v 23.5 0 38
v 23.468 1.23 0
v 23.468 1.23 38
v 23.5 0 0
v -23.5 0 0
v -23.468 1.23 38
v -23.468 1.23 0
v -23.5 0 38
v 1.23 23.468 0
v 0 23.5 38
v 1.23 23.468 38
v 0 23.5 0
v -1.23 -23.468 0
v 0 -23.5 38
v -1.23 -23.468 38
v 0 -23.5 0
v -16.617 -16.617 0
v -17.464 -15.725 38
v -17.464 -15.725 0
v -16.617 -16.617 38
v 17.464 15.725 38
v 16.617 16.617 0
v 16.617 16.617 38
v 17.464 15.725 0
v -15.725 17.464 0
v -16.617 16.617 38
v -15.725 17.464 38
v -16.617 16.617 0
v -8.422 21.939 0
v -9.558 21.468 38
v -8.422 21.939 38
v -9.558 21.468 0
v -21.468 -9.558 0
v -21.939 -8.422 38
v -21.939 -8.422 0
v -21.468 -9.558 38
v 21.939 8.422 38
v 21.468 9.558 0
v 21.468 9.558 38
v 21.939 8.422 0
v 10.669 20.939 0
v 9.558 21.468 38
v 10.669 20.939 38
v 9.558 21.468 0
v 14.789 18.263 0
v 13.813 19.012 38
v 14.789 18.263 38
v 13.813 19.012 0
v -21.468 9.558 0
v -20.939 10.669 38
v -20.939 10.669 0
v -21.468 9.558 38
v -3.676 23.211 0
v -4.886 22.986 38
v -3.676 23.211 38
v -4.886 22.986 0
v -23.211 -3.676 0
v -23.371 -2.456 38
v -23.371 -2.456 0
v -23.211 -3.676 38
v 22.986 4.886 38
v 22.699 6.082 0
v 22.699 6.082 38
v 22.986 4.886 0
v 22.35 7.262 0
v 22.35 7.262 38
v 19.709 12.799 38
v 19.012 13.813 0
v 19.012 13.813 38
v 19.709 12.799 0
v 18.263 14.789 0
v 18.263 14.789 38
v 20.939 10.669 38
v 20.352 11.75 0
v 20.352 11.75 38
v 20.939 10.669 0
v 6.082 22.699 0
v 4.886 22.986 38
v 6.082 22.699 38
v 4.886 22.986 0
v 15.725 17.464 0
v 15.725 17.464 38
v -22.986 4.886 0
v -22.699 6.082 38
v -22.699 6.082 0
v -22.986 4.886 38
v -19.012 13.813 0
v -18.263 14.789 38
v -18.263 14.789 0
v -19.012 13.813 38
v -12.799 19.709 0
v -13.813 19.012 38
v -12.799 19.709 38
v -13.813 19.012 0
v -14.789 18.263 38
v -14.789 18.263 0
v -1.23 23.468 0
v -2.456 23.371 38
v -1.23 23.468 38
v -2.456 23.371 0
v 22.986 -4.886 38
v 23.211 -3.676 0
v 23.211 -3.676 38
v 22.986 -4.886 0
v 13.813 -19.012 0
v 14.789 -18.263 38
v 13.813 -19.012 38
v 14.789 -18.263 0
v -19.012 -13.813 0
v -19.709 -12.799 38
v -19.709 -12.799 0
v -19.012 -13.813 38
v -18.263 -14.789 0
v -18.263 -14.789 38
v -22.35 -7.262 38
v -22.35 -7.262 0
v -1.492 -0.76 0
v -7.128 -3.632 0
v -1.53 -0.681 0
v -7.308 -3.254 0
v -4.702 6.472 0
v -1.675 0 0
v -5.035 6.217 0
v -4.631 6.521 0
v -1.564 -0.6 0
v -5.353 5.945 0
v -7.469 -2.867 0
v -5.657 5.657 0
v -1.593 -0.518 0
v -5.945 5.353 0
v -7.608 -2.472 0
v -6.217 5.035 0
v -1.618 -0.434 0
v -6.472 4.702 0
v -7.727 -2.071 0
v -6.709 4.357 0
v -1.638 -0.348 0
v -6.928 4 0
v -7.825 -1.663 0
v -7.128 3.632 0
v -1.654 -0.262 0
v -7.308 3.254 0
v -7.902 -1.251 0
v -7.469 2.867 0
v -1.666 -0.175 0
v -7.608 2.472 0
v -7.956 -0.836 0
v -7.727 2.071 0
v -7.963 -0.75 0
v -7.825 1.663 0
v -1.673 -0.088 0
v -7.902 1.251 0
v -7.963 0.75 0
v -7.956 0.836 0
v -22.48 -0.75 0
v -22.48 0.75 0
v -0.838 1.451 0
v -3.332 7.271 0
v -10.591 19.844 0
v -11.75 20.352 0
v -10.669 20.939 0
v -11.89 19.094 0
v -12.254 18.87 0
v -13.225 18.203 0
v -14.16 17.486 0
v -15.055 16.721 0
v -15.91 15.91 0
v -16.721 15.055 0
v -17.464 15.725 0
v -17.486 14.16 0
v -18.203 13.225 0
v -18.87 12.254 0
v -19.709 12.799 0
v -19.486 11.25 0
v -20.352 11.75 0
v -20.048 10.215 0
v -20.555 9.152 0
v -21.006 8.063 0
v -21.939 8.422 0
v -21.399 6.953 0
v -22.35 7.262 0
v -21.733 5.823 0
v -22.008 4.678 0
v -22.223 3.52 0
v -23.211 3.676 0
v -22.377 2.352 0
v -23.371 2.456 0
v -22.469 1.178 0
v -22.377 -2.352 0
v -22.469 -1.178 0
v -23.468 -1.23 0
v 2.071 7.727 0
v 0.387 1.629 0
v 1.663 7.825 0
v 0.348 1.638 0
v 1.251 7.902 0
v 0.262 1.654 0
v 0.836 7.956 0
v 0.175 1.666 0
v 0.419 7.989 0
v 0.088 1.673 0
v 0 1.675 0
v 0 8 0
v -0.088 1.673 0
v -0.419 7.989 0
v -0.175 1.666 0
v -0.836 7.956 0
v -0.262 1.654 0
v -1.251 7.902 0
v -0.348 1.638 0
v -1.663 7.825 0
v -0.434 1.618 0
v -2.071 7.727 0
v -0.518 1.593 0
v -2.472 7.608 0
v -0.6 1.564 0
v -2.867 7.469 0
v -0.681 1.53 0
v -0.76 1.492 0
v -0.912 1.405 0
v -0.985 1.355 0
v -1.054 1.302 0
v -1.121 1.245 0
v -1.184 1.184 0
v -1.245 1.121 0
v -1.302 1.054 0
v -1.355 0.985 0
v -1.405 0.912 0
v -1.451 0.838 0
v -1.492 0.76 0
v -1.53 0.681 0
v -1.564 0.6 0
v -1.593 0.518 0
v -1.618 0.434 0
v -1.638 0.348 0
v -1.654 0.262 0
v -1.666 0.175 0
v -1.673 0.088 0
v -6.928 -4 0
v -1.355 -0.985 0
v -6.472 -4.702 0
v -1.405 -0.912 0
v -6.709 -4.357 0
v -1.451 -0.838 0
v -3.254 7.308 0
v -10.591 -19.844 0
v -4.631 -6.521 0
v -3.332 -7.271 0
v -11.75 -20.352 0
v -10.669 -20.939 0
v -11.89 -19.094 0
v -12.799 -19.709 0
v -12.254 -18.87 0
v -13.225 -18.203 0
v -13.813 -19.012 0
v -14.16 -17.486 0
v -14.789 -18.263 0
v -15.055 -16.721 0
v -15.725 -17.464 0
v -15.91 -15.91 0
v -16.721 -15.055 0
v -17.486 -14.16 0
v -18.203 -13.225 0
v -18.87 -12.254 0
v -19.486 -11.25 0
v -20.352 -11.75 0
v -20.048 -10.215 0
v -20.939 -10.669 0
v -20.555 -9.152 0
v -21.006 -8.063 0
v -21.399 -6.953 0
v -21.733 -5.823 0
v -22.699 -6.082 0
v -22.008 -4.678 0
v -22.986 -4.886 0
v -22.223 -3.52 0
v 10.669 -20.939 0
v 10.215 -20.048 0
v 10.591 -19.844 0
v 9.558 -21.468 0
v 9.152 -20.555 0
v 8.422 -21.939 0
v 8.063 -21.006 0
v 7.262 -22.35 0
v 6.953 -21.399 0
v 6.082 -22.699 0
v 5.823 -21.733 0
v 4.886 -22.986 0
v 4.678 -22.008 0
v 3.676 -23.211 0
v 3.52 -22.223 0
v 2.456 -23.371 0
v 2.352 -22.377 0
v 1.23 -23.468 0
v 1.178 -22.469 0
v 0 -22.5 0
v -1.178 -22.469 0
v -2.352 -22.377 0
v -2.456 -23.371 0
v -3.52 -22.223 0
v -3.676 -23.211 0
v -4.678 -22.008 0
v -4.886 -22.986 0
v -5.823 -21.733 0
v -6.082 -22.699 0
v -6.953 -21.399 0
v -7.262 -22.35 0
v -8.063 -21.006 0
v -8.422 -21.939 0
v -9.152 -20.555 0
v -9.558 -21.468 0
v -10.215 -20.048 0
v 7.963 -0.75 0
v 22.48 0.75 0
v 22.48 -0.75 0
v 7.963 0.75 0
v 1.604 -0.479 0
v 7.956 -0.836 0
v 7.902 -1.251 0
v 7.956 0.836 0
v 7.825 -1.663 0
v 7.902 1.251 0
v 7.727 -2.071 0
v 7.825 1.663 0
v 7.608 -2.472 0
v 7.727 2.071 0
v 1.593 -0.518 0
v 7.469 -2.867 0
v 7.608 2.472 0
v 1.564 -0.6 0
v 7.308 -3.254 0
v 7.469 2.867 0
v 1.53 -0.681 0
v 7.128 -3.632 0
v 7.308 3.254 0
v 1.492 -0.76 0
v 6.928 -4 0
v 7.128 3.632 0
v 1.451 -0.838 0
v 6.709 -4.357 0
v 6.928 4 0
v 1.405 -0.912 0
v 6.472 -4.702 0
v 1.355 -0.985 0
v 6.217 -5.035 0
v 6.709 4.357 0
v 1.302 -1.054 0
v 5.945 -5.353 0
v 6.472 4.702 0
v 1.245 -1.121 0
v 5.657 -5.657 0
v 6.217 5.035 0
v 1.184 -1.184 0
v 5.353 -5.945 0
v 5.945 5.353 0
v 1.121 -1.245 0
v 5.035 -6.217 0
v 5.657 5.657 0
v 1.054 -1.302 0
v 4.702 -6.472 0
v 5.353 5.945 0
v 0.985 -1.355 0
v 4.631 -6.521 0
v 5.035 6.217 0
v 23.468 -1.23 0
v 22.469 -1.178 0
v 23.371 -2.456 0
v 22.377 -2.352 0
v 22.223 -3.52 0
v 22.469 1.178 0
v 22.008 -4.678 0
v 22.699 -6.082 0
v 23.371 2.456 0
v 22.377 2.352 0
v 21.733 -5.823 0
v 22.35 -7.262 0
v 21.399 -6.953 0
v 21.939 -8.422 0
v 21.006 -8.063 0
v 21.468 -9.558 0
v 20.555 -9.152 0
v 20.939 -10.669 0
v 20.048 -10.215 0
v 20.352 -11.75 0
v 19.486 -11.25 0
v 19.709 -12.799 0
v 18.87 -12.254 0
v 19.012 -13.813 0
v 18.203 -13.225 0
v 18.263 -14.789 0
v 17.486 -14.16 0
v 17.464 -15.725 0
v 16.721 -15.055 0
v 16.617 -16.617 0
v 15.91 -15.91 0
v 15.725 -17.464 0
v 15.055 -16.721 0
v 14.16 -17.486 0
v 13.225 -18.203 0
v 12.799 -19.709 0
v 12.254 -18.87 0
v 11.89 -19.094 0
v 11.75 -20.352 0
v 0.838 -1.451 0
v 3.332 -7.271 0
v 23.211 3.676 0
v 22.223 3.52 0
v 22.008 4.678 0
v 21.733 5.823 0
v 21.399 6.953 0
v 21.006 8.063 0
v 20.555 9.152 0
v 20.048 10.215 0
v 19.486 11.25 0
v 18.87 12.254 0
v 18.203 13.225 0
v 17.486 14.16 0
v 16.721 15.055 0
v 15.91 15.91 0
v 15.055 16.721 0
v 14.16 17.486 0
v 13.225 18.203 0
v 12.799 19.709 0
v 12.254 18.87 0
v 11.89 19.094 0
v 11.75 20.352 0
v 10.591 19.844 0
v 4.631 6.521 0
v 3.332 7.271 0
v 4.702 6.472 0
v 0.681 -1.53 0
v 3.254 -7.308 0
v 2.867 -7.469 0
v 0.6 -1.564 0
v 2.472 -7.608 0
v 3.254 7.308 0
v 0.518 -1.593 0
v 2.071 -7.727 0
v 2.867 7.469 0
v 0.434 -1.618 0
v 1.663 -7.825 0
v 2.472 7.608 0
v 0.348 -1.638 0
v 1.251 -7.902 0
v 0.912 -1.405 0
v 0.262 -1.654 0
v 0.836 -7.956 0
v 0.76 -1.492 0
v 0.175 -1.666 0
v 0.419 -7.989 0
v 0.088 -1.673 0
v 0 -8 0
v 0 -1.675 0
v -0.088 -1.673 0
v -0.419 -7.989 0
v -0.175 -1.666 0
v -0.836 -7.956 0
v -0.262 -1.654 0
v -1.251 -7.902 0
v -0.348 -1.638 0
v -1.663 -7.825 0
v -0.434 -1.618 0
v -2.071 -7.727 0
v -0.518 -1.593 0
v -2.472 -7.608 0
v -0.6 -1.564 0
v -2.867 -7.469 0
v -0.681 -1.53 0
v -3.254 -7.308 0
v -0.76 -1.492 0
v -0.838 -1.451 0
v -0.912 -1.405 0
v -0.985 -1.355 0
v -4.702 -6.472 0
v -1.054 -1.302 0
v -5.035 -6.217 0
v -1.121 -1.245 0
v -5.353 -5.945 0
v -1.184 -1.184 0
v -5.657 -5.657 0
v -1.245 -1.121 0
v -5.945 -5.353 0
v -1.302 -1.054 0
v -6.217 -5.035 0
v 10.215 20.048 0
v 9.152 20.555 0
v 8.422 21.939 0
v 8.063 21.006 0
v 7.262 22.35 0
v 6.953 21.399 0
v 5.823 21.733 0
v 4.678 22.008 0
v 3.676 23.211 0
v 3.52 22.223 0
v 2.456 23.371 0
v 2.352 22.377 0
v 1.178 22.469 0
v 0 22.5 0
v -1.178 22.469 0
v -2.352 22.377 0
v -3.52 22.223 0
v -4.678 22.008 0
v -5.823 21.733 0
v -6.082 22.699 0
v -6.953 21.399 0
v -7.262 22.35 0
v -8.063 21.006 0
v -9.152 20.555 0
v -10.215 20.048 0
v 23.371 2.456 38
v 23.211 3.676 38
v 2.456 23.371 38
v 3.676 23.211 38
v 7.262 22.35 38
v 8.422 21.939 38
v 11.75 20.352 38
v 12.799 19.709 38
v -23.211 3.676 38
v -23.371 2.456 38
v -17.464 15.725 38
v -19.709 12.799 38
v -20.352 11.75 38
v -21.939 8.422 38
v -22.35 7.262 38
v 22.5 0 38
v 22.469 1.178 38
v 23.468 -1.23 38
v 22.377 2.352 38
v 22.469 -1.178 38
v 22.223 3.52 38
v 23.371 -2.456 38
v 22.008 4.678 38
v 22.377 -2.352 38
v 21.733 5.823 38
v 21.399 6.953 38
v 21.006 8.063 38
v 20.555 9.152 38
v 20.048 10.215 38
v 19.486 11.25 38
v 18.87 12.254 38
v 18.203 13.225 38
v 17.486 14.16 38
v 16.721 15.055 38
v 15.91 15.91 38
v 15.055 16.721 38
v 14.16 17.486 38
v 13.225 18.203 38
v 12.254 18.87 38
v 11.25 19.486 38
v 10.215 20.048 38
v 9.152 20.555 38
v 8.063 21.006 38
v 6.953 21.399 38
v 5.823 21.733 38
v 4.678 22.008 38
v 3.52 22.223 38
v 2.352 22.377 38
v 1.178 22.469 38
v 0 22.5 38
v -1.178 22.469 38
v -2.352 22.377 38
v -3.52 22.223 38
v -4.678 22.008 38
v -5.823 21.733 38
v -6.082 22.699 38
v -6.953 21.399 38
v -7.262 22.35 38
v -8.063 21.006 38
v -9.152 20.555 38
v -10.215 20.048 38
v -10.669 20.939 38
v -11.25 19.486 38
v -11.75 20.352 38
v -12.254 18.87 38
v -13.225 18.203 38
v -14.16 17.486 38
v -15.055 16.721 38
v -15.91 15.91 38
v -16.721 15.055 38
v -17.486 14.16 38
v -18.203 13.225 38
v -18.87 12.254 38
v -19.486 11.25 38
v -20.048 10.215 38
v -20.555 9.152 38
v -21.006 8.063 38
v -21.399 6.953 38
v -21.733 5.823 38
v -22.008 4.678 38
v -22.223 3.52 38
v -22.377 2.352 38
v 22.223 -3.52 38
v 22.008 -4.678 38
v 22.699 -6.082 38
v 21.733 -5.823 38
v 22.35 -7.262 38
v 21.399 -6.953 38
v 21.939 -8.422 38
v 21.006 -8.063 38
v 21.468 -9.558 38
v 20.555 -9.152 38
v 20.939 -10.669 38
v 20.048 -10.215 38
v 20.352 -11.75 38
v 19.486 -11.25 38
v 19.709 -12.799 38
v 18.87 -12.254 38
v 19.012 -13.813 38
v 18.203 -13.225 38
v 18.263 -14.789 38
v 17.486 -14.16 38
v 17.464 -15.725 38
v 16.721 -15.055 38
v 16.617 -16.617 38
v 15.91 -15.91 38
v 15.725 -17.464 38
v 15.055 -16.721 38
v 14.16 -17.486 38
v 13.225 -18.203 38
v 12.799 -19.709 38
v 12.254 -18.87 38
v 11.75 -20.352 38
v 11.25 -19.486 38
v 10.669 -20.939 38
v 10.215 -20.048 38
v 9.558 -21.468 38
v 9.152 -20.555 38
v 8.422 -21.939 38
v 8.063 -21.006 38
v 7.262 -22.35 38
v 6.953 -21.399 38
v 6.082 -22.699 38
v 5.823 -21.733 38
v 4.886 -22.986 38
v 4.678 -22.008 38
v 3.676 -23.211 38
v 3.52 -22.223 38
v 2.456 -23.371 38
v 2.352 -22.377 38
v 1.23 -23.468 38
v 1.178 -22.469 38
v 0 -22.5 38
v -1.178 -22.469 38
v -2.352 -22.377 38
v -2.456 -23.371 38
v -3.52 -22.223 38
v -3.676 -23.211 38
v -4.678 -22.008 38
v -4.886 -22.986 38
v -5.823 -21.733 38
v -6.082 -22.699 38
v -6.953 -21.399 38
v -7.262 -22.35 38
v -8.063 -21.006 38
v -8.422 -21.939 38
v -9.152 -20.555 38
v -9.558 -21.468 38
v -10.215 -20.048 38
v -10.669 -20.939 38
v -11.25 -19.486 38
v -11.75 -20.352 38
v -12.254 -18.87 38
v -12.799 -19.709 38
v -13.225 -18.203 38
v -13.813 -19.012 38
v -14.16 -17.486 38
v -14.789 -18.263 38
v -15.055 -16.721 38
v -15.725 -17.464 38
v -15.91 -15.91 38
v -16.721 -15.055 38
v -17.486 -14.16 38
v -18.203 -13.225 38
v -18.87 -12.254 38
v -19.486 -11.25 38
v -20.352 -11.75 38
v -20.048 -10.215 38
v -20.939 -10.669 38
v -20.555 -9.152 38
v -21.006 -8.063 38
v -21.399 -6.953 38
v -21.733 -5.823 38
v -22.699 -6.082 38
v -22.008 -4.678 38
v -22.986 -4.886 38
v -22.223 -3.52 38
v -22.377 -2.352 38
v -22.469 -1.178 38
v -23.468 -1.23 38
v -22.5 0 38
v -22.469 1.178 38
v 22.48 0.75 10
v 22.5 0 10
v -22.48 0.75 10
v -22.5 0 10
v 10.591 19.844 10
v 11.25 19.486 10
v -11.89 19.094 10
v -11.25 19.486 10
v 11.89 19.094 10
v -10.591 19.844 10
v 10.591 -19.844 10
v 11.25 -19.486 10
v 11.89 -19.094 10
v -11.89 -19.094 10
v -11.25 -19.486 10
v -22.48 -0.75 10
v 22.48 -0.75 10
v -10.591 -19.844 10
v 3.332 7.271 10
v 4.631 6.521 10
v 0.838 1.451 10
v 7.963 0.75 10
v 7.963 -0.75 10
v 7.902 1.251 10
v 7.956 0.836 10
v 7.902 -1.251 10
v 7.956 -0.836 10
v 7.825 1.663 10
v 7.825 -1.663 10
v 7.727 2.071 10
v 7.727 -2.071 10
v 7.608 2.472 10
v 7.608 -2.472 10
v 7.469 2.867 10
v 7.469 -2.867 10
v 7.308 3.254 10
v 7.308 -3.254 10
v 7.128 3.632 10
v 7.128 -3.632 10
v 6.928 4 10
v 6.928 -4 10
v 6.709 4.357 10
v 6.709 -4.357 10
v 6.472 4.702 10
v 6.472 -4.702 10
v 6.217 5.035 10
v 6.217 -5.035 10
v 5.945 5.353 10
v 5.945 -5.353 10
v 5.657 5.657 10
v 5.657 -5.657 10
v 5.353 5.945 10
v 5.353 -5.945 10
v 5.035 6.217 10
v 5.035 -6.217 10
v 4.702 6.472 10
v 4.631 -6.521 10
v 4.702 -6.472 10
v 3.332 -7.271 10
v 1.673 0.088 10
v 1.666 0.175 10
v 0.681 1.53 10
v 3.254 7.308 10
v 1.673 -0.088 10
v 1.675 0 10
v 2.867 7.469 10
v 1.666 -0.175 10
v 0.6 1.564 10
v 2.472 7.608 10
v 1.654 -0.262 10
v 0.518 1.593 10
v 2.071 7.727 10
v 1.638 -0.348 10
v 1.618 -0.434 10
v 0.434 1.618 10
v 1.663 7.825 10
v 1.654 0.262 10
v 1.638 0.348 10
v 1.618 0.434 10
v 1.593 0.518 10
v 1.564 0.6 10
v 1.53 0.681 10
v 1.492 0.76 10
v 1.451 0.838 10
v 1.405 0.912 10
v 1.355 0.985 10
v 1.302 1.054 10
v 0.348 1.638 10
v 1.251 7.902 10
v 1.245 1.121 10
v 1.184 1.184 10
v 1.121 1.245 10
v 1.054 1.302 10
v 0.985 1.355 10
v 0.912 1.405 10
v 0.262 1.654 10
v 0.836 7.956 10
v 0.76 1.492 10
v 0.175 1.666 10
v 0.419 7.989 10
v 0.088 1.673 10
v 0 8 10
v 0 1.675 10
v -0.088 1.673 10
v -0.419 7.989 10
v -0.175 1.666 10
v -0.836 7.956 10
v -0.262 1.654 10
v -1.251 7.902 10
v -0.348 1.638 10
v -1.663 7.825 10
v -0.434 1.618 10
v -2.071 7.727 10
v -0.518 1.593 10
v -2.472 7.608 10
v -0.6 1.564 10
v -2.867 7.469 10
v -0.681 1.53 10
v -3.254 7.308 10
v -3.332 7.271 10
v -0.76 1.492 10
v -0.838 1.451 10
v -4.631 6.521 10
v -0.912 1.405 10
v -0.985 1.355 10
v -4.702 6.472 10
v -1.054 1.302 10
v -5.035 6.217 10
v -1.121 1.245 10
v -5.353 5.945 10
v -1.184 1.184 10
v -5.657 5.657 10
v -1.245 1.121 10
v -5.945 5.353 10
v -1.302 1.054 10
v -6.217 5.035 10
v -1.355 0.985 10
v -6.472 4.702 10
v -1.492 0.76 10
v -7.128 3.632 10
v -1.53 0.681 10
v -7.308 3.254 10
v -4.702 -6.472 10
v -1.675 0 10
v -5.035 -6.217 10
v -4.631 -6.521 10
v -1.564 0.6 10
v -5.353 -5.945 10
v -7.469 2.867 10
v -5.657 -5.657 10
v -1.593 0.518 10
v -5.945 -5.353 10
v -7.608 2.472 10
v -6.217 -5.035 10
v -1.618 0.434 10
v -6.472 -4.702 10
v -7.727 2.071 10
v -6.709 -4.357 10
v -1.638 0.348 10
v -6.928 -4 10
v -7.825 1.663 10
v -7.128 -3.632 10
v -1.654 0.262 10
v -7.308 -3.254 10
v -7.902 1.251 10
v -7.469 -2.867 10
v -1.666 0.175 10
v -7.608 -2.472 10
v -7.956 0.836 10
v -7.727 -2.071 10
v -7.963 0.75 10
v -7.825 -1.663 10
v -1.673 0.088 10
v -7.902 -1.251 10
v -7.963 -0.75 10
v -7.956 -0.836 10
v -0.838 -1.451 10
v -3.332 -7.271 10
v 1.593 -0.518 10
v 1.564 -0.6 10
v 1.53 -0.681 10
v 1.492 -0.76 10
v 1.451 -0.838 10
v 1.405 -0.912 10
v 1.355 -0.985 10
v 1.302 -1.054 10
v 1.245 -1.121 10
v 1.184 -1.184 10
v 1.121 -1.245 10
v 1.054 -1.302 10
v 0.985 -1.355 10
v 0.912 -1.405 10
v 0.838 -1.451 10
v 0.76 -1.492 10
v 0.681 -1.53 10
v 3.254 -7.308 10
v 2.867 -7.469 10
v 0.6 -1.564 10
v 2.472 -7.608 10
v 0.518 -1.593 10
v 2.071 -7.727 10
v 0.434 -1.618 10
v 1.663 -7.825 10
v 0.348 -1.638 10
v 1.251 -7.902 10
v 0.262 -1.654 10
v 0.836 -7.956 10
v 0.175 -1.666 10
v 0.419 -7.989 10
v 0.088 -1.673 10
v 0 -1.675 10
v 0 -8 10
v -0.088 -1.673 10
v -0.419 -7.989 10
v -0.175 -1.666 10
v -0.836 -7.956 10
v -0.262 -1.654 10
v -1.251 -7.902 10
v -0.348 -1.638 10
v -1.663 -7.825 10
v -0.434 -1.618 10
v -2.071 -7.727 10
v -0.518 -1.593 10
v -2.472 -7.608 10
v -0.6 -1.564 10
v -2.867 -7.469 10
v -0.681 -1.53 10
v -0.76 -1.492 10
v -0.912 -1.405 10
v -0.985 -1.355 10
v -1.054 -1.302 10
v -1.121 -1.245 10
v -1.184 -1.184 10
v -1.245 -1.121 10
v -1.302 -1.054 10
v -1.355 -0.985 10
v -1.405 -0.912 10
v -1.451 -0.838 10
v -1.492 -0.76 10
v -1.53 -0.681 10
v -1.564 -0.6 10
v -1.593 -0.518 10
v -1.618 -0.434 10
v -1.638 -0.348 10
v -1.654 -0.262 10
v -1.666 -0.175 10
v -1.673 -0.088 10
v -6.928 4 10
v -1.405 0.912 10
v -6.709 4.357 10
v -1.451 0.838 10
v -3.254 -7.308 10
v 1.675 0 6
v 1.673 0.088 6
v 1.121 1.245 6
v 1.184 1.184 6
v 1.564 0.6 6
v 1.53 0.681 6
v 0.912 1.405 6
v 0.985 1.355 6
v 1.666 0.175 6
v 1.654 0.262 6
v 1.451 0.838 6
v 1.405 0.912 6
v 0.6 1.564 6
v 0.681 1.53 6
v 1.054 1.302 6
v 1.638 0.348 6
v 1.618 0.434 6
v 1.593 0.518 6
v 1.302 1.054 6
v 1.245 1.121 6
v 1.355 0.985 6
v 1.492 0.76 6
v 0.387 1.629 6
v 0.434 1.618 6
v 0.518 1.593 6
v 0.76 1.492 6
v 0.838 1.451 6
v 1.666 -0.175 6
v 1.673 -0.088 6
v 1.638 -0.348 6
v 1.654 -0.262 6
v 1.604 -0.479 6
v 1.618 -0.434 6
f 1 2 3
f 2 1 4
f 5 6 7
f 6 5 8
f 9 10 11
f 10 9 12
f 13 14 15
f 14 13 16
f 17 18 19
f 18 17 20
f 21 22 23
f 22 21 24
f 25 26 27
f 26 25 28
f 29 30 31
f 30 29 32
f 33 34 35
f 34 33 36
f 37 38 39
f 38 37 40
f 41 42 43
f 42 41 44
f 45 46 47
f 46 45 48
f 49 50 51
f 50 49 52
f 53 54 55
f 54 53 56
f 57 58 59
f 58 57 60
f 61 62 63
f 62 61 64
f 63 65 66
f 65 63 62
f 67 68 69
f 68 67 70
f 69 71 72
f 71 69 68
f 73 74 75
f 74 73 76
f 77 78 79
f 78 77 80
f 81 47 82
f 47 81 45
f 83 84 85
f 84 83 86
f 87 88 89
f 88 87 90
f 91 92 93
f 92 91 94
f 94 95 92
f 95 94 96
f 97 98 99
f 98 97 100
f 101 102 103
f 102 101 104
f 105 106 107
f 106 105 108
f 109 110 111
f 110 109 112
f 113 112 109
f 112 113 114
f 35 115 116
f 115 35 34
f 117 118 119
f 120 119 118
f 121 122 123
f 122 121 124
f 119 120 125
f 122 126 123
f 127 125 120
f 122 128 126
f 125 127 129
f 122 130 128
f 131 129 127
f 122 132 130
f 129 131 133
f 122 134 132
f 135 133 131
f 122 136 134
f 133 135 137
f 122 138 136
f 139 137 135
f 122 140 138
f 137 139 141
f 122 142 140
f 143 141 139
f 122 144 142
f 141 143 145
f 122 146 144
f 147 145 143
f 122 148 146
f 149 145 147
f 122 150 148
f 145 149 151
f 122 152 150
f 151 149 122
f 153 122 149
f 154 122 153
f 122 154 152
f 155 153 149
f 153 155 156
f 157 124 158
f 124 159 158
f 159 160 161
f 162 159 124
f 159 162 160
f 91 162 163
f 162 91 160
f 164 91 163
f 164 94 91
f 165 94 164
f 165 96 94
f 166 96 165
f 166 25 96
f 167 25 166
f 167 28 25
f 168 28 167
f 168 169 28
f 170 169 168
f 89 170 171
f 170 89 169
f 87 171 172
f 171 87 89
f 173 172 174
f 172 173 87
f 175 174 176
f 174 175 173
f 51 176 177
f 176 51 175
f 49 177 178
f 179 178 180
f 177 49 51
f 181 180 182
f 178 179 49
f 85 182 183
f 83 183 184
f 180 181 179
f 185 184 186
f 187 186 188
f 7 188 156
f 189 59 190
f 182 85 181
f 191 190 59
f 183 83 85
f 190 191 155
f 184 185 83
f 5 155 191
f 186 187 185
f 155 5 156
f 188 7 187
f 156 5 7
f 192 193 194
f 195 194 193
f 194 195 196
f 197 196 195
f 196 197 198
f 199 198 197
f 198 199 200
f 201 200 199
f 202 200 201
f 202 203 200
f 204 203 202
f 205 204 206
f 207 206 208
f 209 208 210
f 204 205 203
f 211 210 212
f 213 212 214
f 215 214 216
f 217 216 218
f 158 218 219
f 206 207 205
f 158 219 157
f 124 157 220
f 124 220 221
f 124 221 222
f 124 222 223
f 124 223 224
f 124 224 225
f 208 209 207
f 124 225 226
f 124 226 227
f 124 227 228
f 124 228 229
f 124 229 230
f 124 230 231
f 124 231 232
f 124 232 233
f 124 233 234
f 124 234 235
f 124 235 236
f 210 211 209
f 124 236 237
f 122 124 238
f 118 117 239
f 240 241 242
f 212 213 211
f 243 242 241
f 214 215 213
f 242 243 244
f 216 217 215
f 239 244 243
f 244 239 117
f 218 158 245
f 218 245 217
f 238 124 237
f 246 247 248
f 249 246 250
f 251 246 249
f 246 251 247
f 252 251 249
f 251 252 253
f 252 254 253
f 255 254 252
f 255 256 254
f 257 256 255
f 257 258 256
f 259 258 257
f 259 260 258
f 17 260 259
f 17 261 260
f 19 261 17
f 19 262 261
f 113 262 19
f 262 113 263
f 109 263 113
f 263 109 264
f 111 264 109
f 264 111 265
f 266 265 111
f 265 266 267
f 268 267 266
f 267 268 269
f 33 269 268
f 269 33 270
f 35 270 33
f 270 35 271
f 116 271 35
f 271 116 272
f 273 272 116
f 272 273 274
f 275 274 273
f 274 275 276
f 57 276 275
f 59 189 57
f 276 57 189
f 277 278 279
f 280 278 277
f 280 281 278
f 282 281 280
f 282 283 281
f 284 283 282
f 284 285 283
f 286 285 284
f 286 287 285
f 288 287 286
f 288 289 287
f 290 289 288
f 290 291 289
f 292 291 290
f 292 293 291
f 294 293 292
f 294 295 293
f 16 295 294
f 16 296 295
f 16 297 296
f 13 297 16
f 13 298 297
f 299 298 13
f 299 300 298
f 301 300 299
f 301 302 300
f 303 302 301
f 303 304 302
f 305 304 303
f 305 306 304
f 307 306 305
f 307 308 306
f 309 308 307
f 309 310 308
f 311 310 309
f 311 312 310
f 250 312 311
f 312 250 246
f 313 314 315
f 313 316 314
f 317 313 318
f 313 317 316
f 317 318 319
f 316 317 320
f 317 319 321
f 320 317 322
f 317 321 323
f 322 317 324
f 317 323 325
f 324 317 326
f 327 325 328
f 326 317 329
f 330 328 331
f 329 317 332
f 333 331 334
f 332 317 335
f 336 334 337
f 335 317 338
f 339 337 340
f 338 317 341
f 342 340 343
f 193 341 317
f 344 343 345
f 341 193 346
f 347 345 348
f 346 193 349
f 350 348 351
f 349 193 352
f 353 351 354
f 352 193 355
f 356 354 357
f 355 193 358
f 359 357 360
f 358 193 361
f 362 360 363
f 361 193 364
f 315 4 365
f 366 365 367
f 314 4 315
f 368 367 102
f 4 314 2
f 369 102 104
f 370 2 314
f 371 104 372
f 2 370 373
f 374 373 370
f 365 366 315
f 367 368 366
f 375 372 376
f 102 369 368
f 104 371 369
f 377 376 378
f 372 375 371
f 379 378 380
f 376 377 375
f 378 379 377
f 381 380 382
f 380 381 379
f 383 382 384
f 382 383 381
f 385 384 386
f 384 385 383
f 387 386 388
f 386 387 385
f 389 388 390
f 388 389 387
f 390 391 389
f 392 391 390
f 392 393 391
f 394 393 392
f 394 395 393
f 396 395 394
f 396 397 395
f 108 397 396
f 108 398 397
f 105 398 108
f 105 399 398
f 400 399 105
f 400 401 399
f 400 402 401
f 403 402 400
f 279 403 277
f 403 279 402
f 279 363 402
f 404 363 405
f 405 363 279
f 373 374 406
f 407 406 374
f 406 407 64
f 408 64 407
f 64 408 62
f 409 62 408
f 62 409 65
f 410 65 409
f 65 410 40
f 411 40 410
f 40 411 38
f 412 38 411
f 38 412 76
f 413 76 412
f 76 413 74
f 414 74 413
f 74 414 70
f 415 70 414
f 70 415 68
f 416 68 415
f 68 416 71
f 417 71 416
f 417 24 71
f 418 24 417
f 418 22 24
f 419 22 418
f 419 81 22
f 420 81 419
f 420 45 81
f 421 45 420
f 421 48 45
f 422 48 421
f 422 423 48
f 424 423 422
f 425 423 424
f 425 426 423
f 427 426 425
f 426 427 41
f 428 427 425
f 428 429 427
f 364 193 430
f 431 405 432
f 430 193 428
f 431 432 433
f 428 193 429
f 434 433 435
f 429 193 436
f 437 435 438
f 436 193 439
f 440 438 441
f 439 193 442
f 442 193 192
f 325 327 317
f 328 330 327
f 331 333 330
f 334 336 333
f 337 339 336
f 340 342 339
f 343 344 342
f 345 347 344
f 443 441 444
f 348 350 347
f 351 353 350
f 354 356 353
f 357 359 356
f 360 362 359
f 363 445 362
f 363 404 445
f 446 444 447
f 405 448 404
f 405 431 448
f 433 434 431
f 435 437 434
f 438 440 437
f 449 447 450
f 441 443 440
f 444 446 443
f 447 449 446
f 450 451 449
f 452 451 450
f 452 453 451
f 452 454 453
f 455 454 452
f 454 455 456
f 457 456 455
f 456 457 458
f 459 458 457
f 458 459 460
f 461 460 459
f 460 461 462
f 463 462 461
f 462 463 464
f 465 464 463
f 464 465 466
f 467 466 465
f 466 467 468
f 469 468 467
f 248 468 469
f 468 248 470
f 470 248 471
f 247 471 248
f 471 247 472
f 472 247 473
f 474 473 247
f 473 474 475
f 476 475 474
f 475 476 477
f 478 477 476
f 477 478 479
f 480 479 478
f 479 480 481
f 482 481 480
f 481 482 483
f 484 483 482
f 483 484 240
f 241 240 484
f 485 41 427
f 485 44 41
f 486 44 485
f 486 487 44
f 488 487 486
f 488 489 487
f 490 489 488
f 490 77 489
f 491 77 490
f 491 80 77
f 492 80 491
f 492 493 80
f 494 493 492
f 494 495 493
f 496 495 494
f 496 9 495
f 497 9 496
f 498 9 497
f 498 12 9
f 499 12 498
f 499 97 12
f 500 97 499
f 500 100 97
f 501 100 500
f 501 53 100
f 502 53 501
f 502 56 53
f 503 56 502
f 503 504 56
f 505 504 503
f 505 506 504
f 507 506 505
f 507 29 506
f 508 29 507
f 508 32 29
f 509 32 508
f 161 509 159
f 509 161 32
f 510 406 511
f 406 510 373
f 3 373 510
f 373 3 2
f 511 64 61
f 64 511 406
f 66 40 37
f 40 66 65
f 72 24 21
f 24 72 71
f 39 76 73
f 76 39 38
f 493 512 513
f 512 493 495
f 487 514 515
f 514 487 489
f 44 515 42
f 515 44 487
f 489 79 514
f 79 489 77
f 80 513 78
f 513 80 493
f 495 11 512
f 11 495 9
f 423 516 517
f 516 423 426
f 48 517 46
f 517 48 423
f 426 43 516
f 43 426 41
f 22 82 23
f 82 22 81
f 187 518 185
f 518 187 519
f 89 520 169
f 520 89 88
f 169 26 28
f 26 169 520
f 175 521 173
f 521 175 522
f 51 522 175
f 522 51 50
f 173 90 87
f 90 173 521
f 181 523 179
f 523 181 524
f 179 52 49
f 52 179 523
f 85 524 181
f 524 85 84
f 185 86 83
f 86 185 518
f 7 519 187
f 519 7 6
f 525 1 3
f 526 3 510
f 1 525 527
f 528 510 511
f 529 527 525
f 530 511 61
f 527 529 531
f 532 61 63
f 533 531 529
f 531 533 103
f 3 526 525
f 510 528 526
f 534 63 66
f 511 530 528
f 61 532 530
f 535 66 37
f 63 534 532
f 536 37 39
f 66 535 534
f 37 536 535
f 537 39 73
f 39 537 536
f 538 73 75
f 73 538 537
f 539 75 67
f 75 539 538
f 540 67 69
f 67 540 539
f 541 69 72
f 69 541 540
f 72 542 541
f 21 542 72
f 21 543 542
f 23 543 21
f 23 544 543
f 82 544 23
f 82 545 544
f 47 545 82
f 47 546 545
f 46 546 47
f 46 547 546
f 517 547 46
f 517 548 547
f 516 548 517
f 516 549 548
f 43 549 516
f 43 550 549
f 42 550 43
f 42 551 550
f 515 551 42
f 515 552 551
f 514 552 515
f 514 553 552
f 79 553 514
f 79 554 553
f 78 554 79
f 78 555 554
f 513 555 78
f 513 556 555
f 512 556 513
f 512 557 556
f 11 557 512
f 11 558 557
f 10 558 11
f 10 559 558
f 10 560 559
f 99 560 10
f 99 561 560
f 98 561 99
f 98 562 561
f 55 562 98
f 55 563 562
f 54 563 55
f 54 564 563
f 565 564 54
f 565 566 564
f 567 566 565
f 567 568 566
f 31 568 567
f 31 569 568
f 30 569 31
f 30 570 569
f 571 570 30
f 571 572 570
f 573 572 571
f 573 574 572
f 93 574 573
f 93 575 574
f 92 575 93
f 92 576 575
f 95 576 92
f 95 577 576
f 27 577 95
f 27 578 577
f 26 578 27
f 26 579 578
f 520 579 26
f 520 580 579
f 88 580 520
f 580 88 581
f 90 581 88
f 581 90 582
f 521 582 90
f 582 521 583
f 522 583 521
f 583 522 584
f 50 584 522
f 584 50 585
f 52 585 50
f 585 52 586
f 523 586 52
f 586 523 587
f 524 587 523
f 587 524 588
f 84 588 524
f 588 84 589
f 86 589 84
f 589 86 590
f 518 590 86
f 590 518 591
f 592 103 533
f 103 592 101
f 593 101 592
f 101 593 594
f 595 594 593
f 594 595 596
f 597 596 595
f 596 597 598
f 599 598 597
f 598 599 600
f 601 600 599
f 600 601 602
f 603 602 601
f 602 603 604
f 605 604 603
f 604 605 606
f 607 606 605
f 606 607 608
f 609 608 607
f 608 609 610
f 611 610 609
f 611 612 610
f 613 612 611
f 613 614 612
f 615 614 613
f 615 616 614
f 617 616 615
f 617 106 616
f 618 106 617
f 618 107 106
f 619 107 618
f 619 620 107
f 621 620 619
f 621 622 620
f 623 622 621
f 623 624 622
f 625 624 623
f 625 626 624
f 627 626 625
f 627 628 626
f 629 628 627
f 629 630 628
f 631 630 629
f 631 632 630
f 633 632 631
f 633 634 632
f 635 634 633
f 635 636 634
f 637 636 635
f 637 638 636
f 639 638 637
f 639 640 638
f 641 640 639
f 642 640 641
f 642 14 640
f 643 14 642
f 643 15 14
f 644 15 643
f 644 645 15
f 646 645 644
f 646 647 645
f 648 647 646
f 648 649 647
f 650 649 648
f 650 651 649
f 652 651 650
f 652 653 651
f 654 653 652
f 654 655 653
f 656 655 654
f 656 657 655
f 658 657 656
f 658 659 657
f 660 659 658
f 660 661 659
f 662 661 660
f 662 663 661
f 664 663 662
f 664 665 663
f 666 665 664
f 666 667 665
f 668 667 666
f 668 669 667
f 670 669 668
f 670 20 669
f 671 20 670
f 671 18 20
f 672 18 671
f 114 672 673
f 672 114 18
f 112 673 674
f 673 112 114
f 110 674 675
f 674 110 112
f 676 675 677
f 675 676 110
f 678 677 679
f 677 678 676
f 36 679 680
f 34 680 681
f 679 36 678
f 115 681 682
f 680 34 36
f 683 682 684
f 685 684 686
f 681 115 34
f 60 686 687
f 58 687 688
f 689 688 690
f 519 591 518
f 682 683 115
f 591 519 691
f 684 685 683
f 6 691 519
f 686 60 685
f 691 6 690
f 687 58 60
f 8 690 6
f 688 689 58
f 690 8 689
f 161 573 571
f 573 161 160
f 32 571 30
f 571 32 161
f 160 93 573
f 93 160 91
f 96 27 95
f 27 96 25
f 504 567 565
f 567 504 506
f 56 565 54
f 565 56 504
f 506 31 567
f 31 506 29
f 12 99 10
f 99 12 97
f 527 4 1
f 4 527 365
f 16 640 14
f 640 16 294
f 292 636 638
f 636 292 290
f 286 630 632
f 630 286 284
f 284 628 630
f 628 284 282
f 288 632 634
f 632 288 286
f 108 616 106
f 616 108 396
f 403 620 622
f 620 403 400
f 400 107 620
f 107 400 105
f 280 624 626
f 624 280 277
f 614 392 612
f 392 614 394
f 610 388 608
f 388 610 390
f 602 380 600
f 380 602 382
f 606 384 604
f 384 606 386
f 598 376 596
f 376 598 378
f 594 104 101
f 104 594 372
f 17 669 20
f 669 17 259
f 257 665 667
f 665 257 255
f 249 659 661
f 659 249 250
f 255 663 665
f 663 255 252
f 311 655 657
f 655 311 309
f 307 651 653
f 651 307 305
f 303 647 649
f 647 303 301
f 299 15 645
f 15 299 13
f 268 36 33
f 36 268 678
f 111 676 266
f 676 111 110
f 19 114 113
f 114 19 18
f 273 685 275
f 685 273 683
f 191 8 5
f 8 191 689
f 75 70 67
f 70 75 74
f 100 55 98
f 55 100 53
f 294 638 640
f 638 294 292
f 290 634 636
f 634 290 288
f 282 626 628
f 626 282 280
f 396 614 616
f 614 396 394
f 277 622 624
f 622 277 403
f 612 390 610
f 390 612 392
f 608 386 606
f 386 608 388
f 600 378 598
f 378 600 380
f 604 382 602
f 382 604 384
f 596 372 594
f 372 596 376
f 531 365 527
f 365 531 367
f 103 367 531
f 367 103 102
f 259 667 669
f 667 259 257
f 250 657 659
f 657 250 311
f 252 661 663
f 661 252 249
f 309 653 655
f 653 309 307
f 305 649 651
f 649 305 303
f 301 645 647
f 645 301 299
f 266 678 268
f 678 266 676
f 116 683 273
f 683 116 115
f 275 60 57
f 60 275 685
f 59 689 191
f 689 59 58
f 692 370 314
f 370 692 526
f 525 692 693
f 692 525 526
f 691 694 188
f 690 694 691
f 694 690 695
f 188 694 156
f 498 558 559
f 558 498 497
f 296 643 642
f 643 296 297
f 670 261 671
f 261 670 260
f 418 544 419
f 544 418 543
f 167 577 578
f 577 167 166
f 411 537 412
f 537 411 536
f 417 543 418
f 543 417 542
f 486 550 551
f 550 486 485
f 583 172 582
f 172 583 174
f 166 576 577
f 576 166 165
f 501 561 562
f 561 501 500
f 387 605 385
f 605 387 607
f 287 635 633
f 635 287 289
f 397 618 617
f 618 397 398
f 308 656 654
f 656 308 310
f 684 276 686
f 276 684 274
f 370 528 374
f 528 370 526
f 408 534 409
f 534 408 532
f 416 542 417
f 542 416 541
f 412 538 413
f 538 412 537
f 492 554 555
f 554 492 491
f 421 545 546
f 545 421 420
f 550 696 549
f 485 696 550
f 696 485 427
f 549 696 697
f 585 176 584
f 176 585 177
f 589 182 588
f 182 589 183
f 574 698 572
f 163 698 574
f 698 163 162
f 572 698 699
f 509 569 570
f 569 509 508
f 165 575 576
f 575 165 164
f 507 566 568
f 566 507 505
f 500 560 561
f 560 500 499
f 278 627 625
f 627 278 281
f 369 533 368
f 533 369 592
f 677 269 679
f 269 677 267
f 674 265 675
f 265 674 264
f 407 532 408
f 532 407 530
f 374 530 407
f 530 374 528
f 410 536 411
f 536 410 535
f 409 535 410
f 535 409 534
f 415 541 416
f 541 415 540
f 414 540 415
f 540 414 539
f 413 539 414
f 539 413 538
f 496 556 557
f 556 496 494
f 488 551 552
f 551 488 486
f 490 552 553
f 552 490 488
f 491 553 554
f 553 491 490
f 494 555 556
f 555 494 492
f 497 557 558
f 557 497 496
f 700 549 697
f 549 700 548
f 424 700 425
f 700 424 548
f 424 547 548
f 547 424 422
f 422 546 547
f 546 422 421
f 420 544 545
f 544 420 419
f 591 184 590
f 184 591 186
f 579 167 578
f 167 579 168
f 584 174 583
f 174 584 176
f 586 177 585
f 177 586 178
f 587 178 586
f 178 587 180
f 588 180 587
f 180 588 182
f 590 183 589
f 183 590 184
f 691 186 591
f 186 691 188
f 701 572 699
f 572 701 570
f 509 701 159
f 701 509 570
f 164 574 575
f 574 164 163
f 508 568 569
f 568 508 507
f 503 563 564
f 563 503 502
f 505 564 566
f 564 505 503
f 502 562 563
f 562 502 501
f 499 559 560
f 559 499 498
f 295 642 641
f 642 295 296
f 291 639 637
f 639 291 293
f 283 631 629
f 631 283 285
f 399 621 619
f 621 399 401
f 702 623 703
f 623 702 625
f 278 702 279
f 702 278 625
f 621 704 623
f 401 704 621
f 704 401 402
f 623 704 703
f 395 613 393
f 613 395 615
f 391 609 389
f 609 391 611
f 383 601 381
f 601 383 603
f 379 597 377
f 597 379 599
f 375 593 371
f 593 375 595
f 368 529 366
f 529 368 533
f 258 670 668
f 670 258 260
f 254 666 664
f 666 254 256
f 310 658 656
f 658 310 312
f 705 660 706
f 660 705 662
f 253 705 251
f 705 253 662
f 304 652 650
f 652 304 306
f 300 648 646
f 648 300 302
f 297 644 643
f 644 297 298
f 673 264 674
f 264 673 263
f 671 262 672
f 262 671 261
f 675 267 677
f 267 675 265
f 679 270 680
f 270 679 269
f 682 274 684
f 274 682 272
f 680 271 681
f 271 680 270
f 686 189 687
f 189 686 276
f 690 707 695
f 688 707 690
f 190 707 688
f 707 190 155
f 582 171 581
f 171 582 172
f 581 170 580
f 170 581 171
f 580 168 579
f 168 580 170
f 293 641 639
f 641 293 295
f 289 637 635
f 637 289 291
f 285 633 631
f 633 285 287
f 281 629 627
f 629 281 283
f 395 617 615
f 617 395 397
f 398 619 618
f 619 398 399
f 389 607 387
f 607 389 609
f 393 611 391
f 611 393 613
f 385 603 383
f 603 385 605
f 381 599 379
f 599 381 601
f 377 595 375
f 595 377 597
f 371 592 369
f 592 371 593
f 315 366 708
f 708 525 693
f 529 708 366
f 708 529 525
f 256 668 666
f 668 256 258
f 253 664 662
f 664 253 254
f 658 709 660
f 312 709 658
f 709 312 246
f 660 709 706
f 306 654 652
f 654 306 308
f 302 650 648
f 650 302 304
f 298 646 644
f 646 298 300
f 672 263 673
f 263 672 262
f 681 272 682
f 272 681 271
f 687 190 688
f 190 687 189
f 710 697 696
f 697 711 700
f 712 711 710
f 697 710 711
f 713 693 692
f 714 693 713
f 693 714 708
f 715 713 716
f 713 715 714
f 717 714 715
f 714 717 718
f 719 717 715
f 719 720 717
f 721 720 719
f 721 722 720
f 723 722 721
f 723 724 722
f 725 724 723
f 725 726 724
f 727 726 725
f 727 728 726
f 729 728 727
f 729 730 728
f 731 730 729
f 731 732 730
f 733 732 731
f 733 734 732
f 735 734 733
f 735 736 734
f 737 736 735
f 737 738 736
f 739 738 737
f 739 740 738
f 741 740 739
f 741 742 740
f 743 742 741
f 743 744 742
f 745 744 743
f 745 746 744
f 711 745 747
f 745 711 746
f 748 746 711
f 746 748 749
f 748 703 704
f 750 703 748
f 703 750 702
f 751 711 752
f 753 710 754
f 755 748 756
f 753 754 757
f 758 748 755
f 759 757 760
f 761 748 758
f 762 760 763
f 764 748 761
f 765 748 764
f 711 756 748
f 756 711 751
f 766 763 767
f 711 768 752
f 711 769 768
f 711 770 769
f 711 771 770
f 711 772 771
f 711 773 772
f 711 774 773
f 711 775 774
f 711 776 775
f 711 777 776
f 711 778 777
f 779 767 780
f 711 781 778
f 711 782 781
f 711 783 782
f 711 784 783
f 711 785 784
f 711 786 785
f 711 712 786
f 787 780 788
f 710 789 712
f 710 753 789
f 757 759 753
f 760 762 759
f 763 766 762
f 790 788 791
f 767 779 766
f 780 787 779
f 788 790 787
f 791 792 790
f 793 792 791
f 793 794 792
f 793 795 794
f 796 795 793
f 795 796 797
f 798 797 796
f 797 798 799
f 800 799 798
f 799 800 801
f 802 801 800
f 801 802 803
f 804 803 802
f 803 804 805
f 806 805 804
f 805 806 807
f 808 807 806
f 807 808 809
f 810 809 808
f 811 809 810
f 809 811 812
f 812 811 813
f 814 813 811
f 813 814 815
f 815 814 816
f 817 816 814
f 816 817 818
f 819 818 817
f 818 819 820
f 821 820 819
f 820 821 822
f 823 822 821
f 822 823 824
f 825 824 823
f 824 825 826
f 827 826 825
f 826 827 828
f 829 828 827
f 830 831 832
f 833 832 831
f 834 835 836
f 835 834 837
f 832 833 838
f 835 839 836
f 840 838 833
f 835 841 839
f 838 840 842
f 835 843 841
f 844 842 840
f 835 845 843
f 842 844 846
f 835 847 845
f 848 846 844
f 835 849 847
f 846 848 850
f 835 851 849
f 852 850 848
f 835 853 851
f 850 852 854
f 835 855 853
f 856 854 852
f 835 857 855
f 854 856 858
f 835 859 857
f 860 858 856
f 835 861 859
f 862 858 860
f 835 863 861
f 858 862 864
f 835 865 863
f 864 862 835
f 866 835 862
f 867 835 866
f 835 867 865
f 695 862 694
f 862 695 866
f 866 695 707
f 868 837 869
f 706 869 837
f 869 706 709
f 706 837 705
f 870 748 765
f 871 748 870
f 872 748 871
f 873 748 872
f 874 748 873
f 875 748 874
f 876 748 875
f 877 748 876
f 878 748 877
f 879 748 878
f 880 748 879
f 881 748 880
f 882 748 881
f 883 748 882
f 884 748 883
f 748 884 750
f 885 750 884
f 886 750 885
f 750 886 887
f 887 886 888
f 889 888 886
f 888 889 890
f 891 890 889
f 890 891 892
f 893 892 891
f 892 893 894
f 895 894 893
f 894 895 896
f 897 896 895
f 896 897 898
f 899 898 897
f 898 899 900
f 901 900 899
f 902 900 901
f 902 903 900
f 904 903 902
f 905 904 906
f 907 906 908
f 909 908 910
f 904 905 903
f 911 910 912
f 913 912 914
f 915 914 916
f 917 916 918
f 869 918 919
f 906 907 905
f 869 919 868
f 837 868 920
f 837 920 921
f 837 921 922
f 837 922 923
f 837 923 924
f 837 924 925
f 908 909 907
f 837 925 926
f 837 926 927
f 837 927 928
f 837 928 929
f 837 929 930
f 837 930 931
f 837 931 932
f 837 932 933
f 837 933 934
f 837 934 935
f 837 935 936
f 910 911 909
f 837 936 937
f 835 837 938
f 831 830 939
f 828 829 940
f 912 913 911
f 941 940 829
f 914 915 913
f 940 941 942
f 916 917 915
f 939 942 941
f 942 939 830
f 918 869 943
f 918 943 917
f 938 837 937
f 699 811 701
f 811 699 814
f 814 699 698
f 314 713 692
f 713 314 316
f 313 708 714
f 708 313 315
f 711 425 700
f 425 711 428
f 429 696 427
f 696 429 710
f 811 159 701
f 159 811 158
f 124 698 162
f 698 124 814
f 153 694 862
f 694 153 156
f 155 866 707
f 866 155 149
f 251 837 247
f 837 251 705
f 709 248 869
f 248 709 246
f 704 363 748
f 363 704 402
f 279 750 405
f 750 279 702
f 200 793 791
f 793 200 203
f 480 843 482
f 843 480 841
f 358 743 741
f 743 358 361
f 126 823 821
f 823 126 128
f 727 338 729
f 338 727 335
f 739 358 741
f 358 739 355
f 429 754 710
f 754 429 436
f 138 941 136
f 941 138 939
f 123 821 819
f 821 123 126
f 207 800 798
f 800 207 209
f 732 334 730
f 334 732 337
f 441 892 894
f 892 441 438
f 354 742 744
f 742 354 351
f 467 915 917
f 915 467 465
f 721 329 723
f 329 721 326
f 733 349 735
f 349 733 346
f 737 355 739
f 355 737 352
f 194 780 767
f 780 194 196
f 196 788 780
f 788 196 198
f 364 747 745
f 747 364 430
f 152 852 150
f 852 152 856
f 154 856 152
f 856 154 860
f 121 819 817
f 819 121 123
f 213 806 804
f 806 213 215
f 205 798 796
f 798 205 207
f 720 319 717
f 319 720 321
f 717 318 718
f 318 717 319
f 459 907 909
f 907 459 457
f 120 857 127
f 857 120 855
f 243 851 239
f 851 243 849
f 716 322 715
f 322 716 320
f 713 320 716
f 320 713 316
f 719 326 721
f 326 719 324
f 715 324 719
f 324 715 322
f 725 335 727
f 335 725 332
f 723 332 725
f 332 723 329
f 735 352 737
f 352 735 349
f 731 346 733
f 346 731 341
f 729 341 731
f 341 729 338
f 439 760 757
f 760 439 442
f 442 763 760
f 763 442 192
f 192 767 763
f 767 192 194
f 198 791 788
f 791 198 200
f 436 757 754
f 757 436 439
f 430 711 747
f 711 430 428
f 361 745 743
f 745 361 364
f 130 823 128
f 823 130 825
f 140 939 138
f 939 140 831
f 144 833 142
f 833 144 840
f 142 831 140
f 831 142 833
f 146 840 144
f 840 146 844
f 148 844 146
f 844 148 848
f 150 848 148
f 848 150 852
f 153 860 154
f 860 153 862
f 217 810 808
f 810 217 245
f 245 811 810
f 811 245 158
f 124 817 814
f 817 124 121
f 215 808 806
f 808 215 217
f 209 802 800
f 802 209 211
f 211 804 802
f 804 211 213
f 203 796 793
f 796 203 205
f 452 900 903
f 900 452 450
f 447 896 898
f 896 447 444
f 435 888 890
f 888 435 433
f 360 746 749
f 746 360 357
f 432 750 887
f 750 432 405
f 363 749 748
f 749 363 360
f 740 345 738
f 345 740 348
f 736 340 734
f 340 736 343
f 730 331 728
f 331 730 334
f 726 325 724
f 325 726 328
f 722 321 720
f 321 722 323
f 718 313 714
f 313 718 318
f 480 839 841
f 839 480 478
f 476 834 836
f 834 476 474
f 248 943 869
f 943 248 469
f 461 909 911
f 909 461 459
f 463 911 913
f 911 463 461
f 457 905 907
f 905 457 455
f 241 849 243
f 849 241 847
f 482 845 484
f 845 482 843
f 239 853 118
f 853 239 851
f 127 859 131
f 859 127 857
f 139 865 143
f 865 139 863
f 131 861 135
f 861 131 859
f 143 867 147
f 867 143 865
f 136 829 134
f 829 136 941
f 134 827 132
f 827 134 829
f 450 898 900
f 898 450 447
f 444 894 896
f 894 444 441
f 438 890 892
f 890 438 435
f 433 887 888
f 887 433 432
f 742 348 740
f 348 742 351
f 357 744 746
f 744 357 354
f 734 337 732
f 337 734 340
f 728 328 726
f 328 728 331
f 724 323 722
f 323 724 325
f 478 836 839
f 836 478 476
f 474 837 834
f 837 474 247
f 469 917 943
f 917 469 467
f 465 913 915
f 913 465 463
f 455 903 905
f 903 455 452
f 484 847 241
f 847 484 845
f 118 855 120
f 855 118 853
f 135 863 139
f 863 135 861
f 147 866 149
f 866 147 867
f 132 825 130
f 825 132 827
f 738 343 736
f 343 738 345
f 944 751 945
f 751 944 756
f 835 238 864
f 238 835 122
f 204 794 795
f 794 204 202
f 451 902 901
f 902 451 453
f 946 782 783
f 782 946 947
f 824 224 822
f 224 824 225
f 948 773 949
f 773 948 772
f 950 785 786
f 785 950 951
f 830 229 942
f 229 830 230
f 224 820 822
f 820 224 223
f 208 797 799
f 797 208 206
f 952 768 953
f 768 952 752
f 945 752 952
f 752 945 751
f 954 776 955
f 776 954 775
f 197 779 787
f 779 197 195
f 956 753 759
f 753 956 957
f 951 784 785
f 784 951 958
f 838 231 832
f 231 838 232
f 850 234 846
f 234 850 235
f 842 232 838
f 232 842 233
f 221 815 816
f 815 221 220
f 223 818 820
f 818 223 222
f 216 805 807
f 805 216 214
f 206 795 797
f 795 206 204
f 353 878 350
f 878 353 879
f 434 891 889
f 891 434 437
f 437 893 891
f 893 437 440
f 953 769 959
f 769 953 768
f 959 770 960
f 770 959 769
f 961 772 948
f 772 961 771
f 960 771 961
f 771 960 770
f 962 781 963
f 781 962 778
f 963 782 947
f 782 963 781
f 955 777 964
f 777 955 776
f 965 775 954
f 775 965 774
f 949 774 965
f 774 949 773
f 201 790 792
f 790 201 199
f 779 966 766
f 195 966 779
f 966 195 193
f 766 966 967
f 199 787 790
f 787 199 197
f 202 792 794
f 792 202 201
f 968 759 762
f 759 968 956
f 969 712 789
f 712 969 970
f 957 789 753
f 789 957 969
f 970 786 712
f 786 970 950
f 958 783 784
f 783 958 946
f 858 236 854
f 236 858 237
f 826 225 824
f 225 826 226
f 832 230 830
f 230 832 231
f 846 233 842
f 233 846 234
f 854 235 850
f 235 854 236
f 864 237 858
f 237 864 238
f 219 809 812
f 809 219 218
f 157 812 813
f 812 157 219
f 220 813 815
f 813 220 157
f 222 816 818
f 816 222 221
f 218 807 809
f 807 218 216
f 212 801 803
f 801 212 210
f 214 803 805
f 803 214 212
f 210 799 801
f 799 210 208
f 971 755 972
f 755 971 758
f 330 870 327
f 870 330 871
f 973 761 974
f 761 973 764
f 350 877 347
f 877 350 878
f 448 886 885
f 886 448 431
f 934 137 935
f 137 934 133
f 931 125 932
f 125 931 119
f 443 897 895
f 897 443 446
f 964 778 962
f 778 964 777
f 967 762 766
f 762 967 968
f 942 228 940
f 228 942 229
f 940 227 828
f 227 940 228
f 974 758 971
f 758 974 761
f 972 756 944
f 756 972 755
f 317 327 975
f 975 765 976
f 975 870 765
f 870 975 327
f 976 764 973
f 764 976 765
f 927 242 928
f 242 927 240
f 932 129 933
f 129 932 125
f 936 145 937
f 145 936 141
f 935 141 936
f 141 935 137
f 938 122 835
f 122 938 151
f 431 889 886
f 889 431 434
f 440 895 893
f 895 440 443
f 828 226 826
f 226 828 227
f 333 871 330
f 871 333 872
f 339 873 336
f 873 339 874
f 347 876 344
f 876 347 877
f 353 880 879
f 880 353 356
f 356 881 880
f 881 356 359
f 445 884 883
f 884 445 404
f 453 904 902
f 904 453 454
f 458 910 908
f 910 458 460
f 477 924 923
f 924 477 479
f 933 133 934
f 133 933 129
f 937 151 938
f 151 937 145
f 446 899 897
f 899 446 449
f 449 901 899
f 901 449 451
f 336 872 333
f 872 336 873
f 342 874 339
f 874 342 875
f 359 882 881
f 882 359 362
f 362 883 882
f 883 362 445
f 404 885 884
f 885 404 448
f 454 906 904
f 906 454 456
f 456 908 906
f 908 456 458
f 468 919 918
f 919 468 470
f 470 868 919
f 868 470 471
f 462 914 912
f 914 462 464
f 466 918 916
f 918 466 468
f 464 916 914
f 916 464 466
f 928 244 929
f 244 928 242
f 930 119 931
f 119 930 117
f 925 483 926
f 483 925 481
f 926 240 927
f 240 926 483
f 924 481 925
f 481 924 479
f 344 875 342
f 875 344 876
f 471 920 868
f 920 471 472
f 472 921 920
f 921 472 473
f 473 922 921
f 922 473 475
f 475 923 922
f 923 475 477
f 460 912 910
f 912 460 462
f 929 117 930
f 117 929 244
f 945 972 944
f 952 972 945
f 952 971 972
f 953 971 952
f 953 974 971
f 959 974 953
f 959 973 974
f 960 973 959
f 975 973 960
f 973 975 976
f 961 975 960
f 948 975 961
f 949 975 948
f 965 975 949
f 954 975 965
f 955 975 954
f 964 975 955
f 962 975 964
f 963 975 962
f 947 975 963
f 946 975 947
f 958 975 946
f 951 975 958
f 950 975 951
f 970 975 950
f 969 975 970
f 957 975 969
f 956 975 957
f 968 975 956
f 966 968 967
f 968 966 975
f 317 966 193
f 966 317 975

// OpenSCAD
$fn=120;
difference(){
cylinder(d=47,h=38);
translate([0,0,-1])cylinder(d=45,h=40);
}
difference(){
union()
{
for(i=[0:60:300])
{
    rotate([0,0,i])translate([3,-0.75,0])
    cube(size=[20,1.5,10]);
} 
cylinder(d=16,h=10);
}
translate([0,0,-1])cylinder(d=3.35,h=21);
}
rotate([0,0,30])translate([1.15,-2,0])
cube(size=[2,4,10]);
